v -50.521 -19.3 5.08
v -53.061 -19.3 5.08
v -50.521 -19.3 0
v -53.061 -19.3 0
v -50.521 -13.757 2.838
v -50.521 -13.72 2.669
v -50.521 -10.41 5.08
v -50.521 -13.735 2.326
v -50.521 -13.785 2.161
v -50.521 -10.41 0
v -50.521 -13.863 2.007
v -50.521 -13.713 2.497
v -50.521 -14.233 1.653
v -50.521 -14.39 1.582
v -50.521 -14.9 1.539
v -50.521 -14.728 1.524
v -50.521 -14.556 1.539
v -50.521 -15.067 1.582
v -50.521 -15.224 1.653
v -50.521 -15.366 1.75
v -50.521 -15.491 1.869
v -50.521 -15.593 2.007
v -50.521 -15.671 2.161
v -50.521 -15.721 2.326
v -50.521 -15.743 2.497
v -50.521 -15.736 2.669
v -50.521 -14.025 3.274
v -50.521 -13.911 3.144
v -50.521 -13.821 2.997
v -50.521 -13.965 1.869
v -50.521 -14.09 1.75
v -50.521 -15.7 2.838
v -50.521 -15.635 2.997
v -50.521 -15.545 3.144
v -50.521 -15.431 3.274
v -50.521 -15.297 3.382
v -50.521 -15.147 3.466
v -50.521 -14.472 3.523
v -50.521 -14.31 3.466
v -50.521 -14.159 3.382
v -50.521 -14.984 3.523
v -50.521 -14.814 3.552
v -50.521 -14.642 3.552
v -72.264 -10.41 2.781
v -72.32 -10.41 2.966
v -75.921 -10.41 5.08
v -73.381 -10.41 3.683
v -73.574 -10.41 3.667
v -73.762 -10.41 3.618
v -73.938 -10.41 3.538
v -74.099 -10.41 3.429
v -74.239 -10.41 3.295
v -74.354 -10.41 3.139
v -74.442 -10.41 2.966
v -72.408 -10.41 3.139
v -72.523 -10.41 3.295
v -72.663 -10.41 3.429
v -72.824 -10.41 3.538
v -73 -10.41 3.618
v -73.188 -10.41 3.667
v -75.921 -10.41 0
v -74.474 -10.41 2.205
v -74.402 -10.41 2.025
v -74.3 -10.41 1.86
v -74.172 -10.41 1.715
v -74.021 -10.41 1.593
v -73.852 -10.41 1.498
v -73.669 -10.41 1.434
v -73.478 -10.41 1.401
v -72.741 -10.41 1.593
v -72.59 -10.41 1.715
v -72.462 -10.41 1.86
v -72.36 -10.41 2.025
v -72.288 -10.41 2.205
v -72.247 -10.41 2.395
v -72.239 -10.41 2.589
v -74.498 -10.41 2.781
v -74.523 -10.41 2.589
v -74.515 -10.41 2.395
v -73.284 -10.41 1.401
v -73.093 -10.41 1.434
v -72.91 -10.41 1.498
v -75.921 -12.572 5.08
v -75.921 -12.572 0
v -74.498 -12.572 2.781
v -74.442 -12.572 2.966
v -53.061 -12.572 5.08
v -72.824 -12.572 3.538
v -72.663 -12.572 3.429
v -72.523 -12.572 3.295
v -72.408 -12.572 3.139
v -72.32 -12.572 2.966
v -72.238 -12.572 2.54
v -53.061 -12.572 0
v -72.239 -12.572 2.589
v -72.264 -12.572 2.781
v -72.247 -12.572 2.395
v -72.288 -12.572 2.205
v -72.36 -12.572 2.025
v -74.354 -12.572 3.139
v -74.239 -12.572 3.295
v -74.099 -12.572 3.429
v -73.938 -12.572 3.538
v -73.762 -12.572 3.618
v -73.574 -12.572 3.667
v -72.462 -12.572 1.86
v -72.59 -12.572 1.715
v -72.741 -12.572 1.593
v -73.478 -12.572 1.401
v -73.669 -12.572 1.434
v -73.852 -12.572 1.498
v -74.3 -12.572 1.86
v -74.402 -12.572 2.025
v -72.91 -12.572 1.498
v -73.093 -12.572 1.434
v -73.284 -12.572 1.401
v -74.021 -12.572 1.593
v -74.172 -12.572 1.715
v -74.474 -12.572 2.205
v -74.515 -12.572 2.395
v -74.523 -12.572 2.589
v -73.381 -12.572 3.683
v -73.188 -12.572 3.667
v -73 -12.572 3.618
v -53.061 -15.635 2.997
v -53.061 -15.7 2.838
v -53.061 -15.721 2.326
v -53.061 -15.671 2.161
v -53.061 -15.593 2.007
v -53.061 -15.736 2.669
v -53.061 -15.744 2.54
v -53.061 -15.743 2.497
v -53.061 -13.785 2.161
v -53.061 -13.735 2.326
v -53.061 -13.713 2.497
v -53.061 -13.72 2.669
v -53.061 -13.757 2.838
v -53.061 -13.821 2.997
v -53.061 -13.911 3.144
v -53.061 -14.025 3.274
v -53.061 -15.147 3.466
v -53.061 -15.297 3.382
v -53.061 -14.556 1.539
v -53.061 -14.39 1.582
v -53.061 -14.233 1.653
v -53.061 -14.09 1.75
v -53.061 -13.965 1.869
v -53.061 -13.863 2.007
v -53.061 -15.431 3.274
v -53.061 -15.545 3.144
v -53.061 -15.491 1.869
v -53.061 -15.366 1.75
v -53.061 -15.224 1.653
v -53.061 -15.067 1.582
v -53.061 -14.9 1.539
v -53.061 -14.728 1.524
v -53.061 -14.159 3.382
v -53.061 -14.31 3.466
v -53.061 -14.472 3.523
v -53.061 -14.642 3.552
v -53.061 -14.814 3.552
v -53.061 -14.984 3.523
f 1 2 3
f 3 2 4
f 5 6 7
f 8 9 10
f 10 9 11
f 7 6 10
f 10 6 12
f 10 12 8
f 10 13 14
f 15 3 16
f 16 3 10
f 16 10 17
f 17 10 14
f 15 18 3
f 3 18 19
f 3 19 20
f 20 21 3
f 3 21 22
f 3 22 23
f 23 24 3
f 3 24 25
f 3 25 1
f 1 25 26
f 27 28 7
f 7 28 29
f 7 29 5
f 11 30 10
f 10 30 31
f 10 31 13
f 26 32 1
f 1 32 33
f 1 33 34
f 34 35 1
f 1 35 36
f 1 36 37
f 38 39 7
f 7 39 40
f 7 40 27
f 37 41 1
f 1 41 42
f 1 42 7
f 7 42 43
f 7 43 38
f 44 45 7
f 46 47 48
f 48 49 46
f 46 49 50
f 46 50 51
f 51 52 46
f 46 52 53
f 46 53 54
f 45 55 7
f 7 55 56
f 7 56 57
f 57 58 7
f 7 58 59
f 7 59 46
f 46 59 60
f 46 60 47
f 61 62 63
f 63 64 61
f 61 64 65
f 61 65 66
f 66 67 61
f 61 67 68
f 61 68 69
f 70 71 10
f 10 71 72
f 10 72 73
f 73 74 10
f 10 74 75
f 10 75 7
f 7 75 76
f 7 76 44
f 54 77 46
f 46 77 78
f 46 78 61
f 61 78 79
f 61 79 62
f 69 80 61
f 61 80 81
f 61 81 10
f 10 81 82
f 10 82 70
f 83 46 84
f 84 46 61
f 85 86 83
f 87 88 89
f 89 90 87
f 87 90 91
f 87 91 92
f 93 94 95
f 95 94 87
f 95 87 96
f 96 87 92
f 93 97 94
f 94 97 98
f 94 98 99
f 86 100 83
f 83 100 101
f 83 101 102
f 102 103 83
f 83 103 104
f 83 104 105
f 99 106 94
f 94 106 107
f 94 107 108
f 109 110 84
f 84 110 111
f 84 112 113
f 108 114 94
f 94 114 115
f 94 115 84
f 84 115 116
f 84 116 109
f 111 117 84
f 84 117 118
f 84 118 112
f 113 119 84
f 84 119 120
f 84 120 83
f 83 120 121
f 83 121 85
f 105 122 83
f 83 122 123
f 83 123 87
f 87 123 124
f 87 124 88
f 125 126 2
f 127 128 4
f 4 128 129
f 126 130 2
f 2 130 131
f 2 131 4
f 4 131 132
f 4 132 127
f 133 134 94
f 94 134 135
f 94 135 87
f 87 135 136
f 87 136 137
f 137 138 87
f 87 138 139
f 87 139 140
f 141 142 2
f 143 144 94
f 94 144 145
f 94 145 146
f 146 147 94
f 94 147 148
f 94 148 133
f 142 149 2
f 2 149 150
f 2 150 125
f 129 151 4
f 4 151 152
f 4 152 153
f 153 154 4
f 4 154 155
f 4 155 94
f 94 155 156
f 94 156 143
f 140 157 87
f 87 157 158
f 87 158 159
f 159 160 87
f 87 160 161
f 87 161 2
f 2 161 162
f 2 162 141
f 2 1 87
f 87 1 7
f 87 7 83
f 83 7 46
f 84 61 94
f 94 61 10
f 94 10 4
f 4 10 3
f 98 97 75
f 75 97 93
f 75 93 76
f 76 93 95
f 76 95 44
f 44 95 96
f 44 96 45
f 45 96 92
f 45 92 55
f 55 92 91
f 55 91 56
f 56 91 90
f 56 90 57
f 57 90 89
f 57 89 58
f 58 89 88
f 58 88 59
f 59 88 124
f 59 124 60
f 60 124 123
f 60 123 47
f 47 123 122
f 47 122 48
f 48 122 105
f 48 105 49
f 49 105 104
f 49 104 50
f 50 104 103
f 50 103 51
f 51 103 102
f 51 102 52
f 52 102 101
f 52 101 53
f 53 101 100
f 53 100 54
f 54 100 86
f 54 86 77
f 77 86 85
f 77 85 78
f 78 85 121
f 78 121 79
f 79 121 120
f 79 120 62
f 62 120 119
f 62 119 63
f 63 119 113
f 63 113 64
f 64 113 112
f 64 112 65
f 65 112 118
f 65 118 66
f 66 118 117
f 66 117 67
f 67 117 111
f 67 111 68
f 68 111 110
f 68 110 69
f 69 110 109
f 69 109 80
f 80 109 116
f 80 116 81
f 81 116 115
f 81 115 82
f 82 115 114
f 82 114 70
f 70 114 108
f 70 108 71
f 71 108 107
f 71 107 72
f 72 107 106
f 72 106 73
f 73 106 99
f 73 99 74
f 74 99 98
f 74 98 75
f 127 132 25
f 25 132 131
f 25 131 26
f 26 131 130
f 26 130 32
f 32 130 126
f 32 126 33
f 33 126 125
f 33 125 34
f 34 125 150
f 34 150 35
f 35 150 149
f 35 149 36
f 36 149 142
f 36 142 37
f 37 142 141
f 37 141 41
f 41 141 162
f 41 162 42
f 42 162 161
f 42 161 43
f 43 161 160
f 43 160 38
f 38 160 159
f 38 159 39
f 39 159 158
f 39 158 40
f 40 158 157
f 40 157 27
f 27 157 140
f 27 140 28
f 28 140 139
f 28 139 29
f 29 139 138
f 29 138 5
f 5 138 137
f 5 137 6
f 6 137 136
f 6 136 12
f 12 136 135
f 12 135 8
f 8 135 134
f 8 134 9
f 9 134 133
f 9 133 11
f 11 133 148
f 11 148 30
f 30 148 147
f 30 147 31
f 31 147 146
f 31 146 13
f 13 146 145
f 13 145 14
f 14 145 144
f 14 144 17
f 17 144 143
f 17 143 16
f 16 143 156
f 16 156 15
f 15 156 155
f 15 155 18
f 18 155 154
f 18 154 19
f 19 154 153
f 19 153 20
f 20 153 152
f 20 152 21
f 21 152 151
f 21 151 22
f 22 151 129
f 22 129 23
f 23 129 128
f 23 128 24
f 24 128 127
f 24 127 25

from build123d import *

# Parameters (mm, degrees)
BOSS_EXTRUDE1_DEPTH = 5.08
SKETCH2_R           = 1.143
CUT_EXTRUDE1_DEPTH  = 5.08
SKETCH3_R           = 1.016
CUT_EXTRUDE2_DEPTH  = 5.08


with BuildPart() as part:
    # Sketch1 → Boss-Extrude1 (new body)
    with BuildSketch(Plane.XY):
        Polygon((-75.921062447, -12.572076515), (-75.921062447, -10.410151662), (-50.521062447, -10.410151662), (-50.521062447, -19.300151662), (-53.061062447, -19.300151662), (-53.061062447, -12.572076515), align=None)
    extrude(amount=BOSS_EXTRUDE1_DEPTH)

    # Sketch2 → Cut-Extrude1 (cut)
    with BuildSketch(Plane(origin=(0, -10.410151662, 0), x_dir=(1, 0, 0), z_dir=(0, 1, 0))):
        with Locations((-73.381062447, -2.54)):
            Circle(SKETCH2_R)
    extrude(amount=-CUT_EXTRUDE1_DEPTH, mode=Mode.SUBTRACT)

    # Sketch3 → Cut-Extrude2 (cut)
    with BuildSketch(Plane(origin=(-50.521062447, 0, 0), x_dir=(0, 0, -1), z_dir=(1, 0, 0))):
        with Locations((-2.54, -14.728151662)):
            Circle(SKETCH3_R)
    extrude(amount=-CUT_EXTRUDE2_DEPTH, mode=Mode.SUBTRACT)


solid = part.part
